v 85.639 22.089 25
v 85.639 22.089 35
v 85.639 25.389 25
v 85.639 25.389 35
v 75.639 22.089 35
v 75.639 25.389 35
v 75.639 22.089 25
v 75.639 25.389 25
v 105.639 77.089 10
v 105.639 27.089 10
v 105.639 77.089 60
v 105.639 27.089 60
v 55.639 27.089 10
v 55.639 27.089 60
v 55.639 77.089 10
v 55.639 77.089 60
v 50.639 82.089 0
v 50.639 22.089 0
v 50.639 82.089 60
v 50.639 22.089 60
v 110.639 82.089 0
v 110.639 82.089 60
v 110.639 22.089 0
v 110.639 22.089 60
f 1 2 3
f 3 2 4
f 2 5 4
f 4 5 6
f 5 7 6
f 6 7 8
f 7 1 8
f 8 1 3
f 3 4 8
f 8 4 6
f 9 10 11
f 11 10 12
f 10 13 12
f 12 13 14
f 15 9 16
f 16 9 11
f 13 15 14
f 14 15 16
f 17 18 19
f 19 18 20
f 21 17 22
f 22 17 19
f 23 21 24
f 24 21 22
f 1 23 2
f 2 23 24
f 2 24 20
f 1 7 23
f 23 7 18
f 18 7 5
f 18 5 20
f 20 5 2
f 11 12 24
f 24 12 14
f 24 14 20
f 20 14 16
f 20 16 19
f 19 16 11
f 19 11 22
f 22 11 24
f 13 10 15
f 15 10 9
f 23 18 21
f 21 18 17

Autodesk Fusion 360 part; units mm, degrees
sketch "Sketch1" plane through (0, 0, 0) normal (0, 0, 1) x (1, 0, 0)
  line L0 (50.6391, 82.0886) -> (110.6391, 82.0886)
  line L1 (110.6391, 82.0886) -> (110.6391, 22.0886)
  line L2 (110.6391, 22.0886) -> (50.6391, 22.0886)
  line L3 (50.6391, 22.0886) -> (50.6391, 82.0886)
  line L4 (55.6391, 77.0886) -> (105.6391, 77.0886)
  line L5 (105.6391, 77.0886) -> (105.6391, 27.0886)
  line L6 (105.6391, 27.0886) -> (55.6391, 27.0886)
  line L7 (55.6391, 27.0886) -> (55.6391, 77.0886)
  dimension "d1" = 60
  dimension "d2" = 60
  dimension "d5" = 50
  dimension "d6" = 50
extrude "Extrude1" add sketch "Sketch1" along normal blind 10 contours L4 L5 L6 L7
extrude "Extrude2" add sketch "Sketch1" along normal blind 60
sketch "Sketch2" plane through (0, 22.0886, 0) normal (0, -1, 0) x (1, 0, 0)
  line L0 (50.6391, 0) -> (110.6391, 0)
  line L1 (110.6391, 0) -> (110.6391, 60)
  line L2 (110.6391, 60) -> (50.6391, 60)
  line L3 (50.6391, 60) -> (50.6391, 0)
  line L4 (80.6391, 35) -> (75.6391, 35)
  line L5 (75.6391, 35) -> (85.6391, 35)
  line L6 (85.6391, 35) -> (85.6391, 25)
  line L7 (85.6391, 25) -> (75.6391, 25)
  line L8 (75.6391, 25) -> (75.6391, 35)
  dimension "d13" = 10
  dimension "d14" = 10
extrude "Extrude3" cut sketch "Sketch2" against normal blind 3.3 contours L4 L5 L6 L7 L8
